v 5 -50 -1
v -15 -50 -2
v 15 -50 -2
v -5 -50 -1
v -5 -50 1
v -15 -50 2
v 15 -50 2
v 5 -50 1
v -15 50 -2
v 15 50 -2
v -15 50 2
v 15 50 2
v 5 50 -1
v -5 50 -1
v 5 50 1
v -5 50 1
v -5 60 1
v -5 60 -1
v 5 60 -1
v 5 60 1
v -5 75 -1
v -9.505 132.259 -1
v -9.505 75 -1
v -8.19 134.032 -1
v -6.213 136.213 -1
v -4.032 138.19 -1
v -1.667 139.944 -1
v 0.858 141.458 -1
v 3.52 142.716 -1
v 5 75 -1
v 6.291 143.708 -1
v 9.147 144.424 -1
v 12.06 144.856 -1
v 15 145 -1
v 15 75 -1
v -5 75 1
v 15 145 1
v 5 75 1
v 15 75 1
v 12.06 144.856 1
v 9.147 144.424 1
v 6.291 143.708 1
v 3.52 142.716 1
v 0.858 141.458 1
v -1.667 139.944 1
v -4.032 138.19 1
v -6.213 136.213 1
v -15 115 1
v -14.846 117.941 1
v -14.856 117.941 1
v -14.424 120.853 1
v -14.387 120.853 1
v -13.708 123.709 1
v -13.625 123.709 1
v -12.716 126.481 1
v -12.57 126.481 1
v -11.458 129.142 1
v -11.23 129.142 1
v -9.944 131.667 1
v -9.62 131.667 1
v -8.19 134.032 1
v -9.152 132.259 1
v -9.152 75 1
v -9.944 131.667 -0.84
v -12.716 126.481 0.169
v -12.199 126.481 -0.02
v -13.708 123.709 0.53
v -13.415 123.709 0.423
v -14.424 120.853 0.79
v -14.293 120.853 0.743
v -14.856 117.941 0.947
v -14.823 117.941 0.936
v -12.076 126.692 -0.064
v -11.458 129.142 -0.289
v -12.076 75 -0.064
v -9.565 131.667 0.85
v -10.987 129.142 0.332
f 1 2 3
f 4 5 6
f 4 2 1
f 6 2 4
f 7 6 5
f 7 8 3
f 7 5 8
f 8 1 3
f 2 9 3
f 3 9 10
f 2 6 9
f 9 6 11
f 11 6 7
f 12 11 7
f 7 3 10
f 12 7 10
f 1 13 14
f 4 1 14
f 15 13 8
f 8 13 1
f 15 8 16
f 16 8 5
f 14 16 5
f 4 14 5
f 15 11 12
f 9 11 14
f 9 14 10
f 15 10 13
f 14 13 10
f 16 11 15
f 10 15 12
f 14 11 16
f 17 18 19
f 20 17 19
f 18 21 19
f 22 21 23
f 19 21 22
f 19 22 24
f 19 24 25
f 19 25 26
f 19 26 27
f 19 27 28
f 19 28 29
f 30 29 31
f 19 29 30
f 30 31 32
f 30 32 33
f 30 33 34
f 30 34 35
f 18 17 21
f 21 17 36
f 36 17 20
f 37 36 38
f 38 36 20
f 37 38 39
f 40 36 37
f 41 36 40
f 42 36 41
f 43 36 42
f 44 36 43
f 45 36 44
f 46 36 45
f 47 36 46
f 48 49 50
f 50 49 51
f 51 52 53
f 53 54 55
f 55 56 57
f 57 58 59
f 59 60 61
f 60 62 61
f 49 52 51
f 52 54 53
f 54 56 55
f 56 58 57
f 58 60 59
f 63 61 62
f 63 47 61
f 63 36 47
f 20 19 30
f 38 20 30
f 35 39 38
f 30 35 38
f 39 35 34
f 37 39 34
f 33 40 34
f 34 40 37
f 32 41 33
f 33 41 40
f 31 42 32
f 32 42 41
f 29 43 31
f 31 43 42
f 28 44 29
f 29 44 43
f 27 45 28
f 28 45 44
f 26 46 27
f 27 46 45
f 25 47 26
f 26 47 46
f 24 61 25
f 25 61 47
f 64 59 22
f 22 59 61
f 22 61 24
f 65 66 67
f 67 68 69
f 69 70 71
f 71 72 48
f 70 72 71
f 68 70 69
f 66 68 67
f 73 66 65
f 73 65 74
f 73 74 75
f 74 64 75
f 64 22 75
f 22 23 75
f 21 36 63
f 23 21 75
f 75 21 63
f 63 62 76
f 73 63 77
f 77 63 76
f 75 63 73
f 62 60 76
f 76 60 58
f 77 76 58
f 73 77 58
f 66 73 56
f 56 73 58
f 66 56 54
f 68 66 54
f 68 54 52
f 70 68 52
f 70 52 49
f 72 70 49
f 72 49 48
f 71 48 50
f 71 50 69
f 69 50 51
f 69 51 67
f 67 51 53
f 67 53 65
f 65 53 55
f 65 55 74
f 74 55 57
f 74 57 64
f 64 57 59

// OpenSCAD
resolution = 64;

module cyl(h, r, center) {
	cylinder(h=h, r=r, center=center, $fn=resolution);
}


module sharpener(height,l, h, w,mid_x, mid_y, ang) {
	difference() {
	 blade_end(height,l, h, w);
	 rotate([ang]) {
	  blade_end(height,l, h, w);
	 };
	 rotate([-ang]) {
	  blade_end(height,l, h, w);
	 };
	};						//difference
}

module blade_end(height, l, h, w){
	  cube([l, height, w]);			// Blade shaft-end

	translate([l,0, 0]) {
	   union() {				// Blade curved-end
	    intersection() {
	     cube([l, height, w]);
	      translate([0,height,0]){
	       cyl(h=w, r=height, center=false);	// End arc
	      };					// translate
	     };					// inter
	     translate([0, l/2, 0]) {
	      rotate([0,00,90]){
              //cyl(h=w, r1=0.1, r2=l*2.5); // 
	      };					// rotate
	     }; 					// translate
	    };					// inter
	   };						// union
}

module blade(height, l, h, w){ // Snap-in blade of set length and width
	rotate([90, 0, 0]) {
	union() {			
	 cube([height / 2, 10, w]);		// Snap-in part
	 translate([height / 2, -h, 0]) {
	sharpener(height,l, h, w, 0, 0, 20);
	  };						// translate
	 };						// translate
	};						// union
	
}

module handle(height, len, blade_h, blade_w) {
	width = blade_w * 2;
	difference() {
	 cube([len, width, height], center=true);
	 cube([len, blade_w, blade_h], center=true);	// Hole for blade
	};
}

module scalpel(height, length) {
	blade_l = 40;
	blade_w = 2;
	blade_h = 10;

	rotate([90,0,90]) {
	 handle(height, length, blade_h, blade_w);
	 translate([blade_l+20, blade_w/2, -blade_h / 2]) {
	  blade(height, blade_l,blade_h, blade_w);
	 };		// translate
	};		//rotate
}

scalpel(30, 100);
